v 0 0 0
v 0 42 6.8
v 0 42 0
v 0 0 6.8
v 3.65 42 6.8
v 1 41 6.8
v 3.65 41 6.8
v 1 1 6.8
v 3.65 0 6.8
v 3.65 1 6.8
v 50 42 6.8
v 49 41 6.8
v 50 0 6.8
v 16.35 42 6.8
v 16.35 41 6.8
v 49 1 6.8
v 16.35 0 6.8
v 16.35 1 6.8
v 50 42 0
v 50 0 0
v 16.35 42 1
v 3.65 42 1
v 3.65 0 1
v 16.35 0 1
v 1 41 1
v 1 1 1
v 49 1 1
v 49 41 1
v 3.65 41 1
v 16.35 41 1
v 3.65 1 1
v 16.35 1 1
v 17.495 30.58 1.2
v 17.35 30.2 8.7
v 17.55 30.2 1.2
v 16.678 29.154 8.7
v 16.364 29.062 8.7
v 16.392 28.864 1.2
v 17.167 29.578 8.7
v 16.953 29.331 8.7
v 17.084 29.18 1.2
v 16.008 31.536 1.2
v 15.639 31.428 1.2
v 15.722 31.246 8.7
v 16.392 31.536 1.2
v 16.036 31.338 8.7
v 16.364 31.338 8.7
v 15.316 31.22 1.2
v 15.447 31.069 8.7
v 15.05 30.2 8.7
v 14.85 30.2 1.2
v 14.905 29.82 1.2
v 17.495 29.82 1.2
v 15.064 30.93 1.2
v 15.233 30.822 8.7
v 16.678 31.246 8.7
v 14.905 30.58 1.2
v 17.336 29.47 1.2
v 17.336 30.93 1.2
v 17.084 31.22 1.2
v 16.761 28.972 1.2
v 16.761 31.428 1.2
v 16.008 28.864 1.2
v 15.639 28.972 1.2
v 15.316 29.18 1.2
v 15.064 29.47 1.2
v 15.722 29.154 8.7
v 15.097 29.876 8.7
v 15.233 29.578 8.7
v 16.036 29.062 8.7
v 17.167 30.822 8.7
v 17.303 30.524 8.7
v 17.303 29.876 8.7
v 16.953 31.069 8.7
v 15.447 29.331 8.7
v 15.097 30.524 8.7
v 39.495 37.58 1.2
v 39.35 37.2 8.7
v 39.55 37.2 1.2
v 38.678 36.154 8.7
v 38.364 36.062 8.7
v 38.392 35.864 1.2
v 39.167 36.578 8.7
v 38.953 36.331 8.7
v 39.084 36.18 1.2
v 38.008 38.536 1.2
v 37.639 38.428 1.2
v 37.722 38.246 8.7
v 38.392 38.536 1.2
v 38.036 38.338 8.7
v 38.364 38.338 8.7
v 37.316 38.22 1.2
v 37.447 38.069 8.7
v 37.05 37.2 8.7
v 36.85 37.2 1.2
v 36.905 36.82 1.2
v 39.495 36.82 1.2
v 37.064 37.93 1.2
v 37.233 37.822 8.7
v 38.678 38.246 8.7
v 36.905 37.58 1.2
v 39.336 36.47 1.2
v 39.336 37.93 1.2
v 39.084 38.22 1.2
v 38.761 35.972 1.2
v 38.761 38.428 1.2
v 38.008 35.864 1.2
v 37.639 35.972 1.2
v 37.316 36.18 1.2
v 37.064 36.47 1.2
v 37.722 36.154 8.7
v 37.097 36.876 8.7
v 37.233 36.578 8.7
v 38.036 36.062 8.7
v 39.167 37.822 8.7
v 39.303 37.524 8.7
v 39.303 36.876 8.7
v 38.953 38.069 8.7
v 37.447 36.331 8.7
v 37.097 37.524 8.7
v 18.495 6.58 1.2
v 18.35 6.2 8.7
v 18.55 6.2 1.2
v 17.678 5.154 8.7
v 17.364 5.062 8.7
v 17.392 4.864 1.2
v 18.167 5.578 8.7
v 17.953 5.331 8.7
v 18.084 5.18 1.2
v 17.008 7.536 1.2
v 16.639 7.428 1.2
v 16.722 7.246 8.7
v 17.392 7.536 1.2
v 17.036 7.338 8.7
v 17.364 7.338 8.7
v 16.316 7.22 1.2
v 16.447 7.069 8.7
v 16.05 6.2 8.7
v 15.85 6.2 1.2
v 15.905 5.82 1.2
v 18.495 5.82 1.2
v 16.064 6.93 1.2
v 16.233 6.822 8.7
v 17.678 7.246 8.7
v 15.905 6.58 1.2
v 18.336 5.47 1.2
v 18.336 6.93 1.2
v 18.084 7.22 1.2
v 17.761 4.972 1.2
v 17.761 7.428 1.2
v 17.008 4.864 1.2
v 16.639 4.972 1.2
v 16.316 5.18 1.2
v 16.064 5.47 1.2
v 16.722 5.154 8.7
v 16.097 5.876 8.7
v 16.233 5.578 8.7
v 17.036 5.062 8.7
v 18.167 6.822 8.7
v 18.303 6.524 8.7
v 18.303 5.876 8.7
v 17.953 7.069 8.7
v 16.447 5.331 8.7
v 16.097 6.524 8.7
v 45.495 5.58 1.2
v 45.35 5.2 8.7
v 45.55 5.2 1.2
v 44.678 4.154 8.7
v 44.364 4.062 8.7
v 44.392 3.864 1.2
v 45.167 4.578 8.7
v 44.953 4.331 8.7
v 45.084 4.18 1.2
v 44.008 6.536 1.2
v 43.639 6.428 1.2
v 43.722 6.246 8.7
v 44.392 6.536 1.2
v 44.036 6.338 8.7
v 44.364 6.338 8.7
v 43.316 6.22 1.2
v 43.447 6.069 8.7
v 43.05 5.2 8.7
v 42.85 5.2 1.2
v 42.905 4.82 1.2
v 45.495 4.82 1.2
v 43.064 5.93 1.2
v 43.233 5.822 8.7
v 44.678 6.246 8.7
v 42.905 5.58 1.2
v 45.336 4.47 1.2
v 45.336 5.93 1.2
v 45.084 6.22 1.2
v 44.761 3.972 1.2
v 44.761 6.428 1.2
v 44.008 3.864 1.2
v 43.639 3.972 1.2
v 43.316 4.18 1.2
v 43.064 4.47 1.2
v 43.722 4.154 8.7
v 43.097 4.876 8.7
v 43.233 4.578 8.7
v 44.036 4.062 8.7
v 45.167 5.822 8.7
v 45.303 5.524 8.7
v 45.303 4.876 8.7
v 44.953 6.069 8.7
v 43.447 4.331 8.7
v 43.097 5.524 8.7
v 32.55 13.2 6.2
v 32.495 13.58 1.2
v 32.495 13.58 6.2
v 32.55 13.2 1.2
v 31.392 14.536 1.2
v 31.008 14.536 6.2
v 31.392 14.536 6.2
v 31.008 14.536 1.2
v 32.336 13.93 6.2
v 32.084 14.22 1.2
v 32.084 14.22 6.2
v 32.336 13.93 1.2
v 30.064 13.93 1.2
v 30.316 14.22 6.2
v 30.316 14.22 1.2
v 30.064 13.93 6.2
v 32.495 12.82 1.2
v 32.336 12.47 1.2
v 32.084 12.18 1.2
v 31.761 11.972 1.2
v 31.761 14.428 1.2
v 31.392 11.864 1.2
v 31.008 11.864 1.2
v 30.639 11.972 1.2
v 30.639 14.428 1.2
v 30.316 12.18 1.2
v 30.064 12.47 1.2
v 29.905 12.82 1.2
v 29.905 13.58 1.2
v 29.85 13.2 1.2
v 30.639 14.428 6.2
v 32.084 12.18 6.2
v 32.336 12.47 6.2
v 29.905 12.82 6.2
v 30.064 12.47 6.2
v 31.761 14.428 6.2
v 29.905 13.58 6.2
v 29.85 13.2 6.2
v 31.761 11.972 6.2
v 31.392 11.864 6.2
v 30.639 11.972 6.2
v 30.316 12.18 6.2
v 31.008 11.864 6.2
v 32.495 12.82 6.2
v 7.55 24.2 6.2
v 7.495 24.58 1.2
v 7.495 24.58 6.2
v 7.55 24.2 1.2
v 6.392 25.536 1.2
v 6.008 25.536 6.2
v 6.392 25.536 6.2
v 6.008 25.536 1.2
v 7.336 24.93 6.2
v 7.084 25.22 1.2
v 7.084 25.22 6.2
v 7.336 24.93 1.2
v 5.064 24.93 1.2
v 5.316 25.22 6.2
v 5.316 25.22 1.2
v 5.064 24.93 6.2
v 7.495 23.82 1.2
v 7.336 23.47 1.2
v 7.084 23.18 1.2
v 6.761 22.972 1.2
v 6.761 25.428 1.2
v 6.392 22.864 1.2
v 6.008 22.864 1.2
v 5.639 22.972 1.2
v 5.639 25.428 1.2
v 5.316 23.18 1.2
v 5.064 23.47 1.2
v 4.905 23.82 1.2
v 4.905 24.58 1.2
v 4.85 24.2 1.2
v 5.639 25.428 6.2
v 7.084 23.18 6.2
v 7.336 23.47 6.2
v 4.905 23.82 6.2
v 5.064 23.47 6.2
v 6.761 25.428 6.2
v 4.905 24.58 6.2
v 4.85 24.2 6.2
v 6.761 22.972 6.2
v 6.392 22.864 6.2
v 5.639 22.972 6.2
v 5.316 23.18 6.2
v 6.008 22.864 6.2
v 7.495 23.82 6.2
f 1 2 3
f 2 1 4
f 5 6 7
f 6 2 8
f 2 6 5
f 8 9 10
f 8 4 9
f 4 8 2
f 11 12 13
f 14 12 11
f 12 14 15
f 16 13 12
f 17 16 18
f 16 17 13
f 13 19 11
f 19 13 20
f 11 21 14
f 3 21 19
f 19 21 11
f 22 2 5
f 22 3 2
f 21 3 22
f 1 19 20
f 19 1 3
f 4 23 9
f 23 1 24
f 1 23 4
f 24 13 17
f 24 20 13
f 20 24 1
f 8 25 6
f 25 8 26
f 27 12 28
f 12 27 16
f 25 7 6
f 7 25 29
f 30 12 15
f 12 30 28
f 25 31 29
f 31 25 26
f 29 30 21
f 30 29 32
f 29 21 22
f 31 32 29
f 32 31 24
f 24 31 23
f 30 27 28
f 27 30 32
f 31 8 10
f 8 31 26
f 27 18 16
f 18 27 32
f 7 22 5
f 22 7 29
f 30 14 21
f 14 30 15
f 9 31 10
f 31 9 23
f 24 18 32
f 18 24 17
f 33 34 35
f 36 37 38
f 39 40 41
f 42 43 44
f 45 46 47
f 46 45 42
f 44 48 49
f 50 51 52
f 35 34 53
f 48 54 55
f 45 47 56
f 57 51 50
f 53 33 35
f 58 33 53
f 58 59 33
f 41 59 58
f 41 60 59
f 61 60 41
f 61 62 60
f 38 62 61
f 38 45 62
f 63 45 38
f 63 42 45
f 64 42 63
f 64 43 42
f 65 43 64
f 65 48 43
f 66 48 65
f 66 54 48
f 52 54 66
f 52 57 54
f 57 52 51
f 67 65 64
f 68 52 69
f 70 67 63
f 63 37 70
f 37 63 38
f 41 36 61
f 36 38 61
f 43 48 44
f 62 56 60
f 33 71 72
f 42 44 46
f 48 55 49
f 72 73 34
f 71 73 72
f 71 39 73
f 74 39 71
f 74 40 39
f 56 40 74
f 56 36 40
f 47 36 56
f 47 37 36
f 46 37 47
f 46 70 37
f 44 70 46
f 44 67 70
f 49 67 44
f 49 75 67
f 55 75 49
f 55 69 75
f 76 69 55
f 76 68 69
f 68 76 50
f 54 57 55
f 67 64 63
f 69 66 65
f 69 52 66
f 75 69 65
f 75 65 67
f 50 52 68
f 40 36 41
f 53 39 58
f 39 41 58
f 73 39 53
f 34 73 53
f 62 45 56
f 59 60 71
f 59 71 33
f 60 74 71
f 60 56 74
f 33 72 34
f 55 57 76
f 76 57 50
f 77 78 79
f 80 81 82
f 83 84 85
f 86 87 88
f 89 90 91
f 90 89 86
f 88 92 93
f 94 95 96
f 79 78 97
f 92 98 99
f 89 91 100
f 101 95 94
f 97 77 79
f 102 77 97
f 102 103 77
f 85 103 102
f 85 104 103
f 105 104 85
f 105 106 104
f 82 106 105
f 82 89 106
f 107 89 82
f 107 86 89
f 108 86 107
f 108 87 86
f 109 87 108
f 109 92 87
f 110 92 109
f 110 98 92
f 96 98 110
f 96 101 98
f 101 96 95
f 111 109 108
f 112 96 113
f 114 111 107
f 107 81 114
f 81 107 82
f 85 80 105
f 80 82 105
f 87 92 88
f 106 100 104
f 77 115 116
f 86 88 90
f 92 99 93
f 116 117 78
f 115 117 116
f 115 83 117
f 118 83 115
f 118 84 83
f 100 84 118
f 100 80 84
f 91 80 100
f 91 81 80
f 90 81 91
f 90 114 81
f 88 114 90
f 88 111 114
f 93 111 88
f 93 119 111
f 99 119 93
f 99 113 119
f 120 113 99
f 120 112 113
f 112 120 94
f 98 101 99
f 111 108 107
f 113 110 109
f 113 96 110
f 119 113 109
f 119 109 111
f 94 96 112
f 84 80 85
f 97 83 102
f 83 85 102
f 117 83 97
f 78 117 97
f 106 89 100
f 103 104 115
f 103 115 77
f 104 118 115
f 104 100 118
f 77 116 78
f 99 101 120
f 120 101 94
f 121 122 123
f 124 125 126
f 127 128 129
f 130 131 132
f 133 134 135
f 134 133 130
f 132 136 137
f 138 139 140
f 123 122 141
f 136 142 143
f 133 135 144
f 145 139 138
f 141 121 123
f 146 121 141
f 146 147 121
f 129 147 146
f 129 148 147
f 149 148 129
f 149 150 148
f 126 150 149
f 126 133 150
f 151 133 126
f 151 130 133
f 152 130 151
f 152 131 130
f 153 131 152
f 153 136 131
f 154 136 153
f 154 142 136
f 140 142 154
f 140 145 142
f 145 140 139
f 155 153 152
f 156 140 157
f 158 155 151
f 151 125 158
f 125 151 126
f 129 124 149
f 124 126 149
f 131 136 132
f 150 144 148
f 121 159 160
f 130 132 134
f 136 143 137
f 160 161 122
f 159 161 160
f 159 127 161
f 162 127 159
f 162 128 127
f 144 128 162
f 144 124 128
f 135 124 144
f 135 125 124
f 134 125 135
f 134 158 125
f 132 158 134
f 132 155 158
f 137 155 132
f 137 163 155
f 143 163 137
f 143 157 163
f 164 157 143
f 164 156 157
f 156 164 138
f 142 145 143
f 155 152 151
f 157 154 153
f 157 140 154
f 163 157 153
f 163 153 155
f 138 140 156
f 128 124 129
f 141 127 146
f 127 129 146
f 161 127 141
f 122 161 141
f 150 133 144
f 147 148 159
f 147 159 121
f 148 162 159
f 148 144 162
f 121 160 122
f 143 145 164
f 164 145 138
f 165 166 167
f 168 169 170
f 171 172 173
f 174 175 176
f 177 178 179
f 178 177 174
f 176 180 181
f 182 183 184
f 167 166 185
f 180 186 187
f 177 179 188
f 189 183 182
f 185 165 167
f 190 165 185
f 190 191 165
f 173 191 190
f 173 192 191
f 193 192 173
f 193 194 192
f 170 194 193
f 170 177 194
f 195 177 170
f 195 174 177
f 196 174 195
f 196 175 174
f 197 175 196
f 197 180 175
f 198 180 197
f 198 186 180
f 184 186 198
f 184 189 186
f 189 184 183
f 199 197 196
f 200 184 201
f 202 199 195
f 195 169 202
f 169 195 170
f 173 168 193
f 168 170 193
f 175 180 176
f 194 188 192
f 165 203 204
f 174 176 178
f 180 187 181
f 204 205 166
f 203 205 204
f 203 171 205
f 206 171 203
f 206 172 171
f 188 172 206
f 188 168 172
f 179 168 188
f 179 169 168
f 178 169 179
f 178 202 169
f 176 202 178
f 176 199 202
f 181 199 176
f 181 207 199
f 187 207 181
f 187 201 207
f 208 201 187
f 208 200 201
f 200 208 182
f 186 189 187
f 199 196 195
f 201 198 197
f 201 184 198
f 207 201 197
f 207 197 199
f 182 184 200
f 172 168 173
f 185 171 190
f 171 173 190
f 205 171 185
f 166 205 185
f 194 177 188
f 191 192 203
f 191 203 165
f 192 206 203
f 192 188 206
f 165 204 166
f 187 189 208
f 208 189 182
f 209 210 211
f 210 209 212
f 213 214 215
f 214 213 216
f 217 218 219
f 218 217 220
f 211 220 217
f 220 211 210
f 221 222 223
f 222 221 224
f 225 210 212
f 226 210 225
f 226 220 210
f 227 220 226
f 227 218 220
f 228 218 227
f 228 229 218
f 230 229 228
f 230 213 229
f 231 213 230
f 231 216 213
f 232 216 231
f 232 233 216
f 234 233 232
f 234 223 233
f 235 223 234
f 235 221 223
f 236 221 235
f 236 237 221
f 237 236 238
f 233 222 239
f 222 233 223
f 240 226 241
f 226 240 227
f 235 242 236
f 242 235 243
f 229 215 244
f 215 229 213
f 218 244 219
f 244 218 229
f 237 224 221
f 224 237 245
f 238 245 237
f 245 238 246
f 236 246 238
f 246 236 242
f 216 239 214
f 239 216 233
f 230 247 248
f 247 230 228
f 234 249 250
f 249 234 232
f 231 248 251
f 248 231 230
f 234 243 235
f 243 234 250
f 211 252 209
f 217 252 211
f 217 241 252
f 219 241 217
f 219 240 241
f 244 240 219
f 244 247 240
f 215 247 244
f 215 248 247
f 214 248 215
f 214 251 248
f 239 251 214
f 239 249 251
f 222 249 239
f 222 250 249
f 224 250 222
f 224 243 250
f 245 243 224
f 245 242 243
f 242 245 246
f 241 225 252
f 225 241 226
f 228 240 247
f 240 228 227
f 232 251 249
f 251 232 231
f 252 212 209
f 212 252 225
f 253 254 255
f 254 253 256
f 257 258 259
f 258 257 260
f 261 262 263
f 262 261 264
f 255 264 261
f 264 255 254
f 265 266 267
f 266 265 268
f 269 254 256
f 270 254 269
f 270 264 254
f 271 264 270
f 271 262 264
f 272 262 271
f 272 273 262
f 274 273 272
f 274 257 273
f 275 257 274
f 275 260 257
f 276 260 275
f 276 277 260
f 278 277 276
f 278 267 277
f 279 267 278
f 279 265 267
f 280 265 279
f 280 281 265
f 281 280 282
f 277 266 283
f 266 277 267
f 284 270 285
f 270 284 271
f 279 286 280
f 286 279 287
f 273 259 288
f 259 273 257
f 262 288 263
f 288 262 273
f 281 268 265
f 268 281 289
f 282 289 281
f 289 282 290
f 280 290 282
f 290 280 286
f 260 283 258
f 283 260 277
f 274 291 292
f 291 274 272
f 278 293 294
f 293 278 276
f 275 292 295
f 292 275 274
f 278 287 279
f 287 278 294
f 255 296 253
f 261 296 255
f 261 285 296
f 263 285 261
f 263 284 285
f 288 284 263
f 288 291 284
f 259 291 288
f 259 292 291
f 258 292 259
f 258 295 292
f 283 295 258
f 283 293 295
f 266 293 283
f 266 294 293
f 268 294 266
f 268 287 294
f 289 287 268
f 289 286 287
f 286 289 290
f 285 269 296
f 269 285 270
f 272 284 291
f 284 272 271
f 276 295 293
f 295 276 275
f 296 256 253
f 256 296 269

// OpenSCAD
$fs=.4;

tolerance = 0.2;

t = 1;

boardW = 47 + t;
boardL = 39 + t;
boardH = 6;
switchW = 12.5 + tolerance;
switchH = 5;

plugH = switchH + 2.5;
plugR = 1.35;


union() {
    difference() {
        cube([boardW+t*2,boardL+t*2,boardH+t-tolerance]);
        translate([t,t,t])
        cube([boardW,boardL,boardH]);
        
        translate([10 - switchW/2,36+3,t])
        #cube([switchW,4, boardH]);
        
        translate([10 - switchW/2,-1,t])
        #cube([switchW,4, boardH]);
        
        
        //translate([29 - 22/2,-1,t])
        //#cube([22,4, boardH]);
    }
    
    


}
translate([t + tolerance,t + tolerance,t + tolerance])
union() {    
    translate([15,29])
    cylinder(h=plugH,r1=plugR, r2=plugR-tolerance);
    translate([37,36])
    cylinder(h=plugH,r1=plugR, r2=plugR-tolerance);
    translate([16,5])
    cylinder(h=plugH,r1=plugR, r2=plugR-tolerance);
    translate([43,4])
    cylinder(h=plugH,r1=plugR, r2=plugR-tolerance);
    
    
        //supports
    translate([30,12,0])
    cylinder(h=switchH,r=plugR);
    translate([5,23,0])
    cylinder(h=switchH,r=plugR);
}
